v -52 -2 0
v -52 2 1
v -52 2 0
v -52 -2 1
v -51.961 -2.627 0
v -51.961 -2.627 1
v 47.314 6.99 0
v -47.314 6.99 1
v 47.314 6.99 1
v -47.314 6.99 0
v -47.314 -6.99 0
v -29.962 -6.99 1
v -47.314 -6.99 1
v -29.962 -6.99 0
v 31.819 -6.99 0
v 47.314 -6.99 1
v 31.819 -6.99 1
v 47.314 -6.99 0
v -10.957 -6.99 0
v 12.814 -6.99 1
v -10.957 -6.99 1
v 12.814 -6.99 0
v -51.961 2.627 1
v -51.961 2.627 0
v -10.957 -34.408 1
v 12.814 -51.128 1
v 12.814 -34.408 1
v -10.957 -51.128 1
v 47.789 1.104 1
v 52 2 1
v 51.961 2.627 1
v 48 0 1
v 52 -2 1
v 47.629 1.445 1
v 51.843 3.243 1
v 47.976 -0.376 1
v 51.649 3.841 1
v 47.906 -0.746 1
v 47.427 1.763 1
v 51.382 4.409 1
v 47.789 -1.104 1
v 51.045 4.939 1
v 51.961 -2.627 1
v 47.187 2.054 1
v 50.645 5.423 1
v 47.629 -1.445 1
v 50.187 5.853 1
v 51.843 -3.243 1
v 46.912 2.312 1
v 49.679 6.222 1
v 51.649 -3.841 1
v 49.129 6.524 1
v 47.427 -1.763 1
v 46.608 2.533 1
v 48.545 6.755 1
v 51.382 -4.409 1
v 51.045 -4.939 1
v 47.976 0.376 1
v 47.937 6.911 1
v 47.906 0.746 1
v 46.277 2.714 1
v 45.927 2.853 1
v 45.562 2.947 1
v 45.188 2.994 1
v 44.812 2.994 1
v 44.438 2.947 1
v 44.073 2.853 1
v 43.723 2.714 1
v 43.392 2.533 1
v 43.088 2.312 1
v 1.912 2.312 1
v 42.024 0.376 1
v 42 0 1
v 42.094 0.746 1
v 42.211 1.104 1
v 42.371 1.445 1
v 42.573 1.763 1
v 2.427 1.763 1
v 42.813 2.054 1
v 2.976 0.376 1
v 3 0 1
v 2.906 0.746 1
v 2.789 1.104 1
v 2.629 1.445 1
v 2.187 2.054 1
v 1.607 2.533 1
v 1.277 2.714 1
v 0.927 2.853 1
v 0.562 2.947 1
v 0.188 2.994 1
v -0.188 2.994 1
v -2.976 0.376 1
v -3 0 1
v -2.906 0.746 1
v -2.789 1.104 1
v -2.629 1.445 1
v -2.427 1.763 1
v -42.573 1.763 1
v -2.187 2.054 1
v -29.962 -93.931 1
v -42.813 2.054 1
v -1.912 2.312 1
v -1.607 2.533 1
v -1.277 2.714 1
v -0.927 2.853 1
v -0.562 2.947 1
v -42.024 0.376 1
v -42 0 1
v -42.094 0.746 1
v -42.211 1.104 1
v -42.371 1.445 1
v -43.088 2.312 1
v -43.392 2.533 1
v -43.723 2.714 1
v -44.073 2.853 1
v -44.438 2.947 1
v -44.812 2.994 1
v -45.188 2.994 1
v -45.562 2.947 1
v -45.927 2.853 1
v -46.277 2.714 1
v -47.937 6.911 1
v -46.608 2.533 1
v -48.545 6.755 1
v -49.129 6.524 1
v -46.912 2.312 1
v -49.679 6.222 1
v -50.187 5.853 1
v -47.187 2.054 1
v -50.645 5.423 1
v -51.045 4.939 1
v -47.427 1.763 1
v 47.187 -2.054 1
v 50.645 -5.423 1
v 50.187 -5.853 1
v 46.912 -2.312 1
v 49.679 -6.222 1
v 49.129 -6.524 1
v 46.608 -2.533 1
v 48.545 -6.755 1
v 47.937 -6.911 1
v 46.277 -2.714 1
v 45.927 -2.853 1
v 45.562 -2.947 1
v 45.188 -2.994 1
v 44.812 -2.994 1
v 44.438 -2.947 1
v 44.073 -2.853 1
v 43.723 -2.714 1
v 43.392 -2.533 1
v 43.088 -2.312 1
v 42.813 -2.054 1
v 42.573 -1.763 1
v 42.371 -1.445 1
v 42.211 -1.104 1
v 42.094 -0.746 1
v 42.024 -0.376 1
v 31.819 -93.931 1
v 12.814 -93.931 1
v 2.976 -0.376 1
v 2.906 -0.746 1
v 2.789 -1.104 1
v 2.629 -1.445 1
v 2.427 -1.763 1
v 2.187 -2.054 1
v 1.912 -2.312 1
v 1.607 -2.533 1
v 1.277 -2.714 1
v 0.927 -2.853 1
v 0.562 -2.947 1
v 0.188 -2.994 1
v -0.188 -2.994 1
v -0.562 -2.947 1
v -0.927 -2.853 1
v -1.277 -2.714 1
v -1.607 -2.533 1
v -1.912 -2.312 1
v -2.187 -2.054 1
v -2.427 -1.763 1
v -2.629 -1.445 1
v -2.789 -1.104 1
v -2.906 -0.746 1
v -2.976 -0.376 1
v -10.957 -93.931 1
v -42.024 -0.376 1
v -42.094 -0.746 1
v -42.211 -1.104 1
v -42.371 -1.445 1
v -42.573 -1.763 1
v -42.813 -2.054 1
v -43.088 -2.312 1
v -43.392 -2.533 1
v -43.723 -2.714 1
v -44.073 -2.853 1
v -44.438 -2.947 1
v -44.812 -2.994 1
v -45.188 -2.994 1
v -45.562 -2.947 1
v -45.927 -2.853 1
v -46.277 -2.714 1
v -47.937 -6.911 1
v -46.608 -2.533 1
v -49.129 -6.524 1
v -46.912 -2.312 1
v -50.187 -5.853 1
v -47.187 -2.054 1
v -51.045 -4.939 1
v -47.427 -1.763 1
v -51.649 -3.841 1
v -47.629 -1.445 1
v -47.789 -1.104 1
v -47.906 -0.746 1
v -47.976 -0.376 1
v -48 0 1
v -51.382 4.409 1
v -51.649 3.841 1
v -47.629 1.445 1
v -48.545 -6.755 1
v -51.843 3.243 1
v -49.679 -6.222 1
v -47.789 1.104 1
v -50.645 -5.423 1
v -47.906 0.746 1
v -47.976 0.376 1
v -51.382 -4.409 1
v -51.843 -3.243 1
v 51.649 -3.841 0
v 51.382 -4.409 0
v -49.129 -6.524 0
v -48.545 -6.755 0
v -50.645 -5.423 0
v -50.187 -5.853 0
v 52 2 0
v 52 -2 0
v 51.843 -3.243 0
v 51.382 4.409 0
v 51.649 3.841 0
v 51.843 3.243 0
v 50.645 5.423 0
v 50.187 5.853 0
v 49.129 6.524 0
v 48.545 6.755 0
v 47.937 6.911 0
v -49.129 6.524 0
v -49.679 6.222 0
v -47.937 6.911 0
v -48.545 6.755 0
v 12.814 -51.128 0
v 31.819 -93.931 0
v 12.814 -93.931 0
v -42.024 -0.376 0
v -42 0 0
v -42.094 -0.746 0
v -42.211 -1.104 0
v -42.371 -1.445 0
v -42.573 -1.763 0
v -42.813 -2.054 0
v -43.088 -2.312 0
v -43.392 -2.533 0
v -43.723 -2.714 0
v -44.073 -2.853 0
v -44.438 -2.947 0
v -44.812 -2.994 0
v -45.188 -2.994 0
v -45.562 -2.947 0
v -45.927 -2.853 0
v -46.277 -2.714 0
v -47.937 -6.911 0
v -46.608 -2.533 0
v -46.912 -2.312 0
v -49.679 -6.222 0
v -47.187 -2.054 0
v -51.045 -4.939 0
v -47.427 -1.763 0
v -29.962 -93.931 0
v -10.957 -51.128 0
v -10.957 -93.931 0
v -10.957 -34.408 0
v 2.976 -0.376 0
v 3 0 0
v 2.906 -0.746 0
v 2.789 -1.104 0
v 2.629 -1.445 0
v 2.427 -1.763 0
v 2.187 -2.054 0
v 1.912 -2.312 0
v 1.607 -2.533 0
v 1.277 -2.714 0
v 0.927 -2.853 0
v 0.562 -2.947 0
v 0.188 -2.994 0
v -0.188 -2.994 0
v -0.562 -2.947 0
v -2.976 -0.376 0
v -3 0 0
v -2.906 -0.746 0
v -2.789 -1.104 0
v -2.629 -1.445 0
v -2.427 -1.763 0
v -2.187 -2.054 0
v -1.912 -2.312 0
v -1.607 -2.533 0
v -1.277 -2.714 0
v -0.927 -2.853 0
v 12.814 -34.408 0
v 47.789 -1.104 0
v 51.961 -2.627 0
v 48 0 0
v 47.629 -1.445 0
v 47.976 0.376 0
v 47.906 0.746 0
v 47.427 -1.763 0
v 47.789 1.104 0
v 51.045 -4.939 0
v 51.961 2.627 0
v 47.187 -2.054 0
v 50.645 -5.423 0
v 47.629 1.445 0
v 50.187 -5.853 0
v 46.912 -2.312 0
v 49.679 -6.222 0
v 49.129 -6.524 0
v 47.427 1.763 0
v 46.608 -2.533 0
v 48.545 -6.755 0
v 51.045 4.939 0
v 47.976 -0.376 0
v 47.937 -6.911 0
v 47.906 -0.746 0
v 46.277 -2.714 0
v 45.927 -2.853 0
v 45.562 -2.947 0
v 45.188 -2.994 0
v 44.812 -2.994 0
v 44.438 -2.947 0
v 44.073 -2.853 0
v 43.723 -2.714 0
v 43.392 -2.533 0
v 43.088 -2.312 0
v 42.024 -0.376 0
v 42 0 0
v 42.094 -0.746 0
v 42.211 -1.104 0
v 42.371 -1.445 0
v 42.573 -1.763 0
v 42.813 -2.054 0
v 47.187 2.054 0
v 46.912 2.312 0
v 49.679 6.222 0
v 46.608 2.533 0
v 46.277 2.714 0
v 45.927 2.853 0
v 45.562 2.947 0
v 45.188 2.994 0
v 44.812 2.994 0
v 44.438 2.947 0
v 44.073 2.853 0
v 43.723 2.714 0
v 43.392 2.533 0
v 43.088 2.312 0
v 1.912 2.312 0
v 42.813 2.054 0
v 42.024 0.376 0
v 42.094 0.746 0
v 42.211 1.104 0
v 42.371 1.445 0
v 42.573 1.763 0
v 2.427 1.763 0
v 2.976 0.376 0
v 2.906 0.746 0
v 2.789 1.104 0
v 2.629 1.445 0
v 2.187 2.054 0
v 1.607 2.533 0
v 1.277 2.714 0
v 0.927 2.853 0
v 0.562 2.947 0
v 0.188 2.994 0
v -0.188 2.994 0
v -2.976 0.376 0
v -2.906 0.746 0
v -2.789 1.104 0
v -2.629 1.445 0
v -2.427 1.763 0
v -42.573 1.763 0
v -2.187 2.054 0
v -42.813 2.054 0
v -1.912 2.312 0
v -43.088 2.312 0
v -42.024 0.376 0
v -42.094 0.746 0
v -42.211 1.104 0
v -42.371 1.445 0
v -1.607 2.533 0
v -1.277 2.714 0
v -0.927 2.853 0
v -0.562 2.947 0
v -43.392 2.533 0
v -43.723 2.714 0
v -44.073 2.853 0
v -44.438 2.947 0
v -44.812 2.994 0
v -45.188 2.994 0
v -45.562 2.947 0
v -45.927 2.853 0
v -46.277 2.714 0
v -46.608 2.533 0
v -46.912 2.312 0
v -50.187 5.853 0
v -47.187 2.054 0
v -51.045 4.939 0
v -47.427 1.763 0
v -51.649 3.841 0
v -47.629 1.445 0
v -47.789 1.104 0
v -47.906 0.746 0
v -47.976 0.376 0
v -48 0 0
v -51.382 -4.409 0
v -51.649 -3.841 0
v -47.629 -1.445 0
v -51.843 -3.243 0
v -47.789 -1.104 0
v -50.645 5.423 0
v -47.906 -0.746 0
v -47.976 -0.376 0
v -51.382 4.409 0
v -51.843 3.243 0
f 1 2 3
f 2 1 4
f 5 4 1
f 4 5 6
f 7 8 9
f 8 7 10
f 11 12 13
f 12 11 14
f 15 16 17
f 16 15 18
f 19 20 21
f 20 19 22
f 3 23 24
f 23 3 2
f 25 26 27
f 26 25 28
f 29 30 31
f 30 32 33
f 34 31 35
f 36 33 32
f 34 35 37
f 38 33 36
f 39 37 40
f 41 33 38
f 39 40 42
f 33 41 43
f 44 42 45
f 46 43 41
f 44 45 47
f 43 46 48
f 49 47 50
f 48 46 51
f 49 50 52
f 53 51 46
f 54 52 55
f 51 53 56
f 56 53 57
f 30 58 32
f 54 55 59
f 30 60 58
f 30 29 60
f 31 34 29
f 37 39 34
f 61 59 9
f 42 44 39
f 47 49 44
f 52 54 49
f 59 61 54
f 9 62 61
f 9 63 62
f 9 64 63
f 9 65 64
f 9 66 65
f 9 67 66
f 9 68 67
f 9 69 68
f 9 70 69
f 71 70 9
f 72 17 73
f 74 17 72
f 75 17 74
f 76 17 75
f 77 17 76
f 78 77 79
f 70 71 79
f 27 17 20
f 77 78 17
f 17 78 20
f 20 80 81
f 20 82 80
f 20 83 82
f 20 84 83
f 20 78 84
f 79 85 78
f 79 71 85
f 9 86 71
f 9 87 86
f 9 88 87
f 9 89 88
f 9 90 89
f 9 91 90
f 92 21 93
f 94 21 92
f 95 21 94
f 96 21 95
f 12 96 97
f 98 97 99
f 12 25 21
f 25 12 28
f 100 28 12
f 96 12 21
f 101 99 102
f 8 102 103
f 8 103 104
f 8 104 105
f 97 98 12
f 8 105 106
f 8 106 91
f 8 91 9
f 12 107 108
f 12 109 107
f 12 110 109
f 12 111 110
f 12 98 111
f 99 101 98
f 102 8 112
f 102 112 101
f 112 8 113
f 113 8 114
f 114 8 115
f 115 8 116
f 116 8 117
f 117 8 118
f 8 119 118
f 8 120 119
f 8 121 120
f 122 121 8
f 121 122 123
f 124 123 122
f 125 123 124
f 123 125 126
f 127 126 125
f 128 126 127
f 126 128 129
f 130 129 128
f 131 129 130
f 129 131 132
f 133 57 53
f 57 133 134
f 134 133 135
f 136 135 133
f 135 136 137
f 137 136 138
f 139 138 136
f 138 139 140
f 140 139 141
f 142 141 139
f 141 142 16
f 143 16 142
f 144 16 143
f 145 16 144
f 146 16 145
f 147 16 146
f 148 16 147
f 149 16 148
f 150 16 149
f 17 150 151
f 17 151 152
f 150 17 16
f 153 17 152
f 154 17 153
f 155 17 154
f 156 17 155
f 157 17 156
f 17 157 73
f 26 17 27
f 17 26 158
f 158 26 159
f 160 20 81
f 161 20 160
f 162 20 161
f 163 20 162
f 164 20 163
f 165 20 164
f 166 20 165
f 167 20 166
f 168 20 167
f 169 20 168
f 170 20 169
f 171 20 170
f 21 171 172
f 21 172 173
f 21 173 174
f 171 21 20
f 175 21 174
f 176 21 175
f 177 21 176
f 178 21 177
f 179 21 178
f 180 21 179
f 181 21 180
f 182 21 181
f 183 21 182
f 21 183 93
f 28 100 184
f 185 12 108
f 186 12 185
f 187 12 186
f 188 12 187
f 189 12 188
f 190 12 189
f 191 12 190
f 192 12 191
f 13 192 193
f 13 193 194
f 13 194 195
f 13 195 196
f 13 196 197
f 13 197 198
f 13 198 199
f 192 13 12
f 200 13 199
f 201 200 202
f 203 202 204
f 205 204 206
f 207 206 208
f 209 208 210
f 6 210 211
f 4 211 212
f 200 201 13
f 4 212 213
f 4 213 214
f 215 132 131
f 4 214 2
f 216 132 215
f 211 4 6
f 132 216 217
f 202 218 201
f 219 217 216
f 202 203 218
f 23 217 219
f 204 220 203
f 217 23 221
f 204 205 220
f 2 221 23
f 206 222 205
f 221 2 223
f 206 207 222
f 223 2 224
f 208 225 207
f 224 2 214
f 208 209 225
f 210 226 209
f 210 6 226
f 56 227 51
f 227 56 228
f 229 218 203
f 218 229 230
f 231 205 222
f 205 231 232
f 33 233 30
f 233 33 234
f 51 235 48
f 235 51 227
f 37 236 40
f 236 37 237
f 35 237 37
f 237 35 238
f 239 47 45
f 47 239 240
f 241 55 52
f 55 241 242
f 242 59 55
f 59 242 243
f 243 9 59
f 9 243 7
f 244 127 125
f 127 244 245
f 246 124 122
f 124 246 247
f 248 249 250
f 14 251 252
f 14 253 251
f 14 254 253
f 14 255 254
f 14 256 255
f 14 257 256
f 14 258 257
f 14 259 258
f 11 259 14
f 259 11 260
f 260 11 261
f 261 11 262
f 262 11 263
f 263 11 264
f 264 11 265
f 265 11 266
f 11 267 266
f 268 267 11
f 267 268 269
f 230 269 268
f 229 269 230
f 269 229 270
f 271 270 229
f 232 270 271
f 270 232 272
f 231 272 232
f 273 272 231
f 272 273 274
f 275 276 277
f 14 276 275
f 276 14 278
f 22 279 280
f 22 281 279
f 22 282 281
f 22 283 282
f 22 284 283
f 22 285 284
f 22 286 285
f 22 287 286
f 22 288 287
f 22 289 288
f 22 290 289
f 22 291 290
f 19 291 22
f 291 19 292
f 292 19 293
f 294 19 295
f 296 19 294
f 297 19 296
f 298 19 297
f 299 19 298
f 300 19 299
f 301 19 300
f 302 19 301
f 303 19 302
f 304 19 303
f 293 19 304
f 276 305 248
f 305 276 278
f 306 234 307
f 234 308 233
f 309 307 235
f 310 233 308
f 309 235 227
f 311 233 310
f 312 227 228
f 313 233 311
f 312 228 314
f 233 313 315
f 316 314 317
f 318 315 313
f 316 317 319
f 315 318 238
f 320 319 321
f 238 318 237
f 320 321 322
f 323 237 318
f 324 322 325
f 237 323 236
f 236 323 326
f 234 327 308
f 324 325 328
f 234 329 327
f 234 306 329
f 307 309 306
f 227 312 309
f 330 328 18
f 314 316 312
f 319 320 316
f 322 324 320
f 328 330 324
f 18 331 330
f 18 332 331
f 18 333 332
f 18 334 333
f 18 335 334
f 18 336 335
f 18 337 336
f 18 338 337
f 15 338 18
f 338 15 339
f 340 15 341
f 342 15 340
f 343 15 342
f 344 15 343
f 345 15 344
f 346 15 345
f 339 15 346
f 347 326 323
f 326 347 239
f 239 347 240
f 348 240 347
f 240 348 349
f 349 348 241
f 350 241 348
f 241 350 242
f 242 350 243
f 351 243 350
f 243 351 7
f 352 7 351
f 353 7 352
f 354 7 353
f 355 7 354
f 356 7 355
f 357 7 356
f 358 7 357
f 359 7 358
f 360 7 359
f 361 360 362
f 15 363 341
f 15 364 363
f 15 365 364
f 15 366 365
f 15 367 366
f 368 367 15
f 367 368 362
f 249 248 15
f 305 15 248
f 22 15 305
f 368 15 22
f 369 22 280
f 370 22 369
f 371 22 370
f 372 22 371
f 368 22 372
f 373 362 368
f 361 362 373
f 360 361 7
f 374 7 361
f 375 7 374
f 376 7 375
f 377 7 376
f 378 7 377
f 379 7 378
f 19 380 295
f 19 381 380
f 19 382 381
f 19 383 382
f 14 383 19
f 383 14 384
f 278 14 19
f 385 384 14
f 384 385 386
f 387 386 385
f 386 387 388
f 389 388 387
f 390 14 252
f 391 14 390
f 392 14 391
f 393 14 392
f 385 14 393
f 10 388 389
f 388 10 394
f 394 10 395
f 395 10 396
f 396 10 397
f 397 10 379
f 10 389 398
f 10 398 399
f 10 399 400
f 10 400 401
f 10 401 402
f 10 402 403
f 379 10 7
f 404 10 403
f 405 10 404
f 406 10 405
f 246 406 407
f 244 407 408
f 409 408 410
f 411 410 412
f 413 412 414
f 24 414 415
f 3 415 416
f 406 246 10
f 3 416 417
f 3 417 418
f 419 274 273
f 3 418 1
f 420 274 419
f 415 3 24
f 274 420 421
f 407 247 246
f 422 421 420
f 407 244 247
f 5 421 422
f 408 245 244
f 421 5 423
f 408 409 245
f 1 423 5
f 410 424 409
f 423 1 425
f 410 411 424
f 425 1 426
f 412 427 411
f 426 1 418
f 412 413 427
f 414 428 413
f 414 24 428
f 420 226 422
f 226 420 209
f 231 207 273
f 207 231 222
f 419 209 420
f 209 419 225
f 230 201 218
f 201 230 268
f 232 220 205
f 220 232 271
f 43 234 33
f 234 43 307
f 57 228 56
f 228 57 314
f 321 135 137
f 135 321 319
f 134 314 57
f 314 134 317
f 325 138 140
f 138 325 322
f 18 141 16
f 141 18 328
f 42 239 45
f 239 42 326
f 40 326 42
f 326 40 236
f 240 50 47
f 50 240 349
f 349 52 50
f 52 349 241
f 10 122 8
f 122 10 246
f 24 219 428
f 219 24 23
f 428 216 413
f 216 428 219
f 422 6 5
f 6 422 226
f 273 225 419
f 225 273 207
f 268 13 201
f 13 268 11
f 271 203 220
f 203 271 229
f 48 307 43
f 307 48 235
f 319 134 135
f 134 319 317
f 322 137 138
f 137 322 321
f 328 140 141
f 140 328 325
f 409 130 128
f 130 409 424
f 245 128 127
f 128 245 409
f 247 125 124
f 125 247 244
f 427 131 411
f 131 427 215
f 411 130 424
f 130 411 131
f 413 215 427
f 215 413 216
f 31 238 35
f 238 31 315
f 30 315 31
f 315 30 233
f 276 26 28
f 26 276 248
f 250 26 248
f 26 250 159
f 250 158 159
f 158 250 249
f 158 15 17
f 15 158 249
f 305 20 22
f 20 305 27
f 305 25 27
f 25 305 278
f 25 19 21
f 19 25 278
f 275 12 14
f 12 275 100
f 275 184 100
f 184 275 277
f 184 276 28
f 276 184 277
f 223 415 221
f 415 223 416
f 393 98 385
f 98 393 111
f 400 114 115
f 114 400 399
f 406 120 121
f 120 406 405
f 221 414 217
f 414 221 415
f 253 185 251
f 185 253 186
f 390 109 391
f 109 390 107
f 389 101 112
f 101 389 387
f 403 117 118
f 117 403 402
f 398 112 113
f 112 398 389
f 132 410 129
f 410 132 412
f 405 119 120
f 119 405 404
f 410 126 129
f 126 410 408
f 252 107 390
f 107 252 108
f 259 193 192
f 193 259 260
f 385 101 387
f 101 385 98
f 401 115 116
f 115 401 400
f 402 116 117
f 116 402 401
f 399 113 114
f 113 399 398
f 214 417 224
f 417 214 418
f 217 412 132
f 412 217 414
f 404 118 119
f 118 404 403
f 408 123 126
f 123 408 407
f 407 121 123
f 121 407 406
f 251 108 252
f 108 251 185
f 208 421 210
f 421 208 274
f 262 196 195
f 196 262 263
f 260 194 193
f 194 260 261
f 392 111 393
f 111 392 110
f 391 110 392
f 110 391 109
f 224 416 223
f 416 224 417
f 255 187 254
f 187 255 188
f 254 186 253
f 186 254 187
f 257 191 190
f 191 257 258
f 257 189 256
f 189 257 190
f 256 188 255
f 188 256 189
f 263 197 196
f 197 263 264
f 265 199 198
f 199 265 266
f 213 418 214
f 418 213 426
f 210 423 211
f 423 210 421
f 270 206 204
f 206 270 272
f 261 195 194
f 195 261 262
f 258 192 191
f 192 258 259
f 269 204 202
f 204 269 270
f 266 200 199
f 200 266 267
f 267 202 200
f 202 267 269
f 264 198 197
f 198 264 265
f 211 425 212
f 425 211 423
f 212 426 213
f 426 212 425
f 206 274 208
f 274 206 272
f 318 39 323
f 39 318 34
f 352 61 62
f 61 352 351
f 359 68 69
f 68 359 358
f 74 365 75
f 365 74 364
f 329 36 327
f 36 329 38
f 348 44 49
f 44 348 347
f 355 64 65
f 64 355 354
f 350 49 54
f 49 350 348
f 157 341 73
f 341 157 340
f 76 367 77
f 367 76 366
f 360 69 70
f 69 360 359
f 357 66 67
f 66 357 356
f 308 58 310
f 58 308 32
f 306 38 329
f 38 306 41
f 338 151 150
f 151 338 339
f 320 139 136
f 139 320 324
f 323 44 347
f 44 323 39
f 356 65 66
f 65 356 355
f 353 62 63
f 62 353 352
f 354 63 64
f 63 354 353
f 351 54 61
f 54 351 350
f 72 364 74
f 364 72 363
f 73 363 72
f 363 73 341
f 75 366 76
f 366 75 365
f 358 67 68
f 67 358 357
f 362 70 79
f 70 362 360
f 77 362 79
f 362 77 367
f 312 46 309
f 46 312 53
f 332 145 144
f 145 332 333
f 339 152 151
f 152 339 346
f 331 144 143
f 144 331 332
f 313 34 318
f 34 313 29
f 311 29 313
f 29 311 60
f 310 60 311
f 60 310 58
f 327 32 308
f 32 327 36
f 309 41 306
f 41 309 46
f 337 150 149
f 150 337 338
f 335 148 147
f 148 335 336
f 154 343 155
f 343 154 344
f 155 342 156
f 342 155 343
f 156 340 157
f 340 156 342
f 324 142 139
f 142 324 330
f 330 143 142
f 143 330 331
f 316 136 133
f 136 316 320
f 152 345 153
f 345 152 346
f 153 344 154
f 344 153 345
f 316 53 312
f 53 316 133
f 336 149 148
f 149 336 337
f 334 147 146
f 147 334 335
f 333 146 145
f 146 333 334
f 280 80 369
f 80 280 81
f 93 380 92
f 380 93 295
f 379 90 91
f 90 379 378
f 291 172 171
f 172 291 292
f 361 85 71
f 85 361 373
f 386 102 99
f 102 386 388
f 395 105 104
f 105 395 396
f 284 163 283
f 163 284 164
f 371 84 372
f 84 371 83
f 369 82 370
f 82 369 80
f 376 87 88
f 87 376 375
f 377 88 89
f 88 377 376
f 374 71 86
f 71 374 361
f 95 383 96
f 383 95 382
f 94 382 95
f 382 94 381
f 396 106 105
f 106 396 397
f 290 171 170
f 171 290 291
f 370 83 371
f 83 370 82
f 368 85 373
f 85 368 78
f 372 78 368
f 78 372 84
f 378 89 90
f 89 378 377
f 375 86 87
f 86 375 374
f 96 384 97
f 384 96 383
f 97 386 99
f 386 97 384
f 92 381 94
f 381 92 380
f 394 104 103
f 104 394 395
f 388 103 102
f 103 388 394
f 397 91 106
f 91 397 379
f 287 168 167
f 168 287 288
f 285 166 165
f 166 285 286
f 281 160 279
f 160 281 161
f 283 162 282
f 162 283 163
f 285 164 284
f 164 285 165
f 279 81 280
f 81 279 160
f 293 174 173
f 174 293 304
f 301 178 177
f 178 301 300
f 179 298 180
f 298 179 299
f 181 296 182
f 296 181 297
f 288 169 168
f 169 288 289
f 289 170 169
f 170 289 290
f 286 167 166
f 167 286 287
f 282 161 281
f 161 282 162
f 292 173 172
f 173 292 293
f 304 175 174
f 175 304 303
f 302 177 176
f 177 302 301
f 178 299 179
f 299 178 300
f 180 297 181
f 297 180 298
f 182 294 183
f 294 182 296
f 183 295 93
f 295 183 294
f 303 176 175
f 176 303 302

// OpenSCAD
$fn = 50;


difference() {
	union() {
		translate(v = [0, 0, 0]) {
			rotate(a = [0, 0, 0]) {
				hull() {
					translate(v = [-47.0000000000, 2.0000000000, 0]) {
						rotate(a = [0, 0, 0]) {
							translate(v = [0, 0, 0]) {
								rotate(a = [0, 0, 0]) {
									cylinder(h = 1, r = 5);
								}
							}
						}
					}
					translate(v = [47.0000000000, 2.0000000000, 0]) {
						rotate(a = [0, 0, 0]) {
							translate(v = [0, 0, 0]) {
								rotate(a = [0, 0, 0]) {
									cylinder(h = 1, r = 5);
								}
							}
						}
					}
					translate(v = [-47.0000000000, -2.0000000000, 0]) {
						rotate(a = [0, 0, 0]) {
							translate(v = [0, 0, 0]) {
								rotate(a = [0, 0, 0]) {
									cylinder(h = 1, r = 5);
								}
							}
						}
					}
					translate(v = [47.0000000000, -2.0000000000, 0]) {
						rotate(a = [0, 0, 0]) {
							translate(v = [0, 0, 0]) {
								rotate(a = [0, 0, 0]) {
									cylinder(h = 1, r = 5);
								}
							}
						}
					}
				}
			}
		}
		translate(v = [0, 0, 0]) {
			rotate(a = [0, 0, 0]) {
				linear_extrude(height = 1) {
					text(font = "DejaVu Sans Mono:style=Bold", halign = "center", size = 95.0000000000, text = "H", valign = "top");
				}
			}
		}
	}
	union() {
		translate(v = [-45.0000000000, 0.0000000000, -125.0000000000]) {
			rotate(a = [0, 0, 0]) {
				cylinder(h = 250, r = 3.0000000000);
			}
		}
		translate(v = [45.0000000000, 0.0000000000, -125.0000000000]) {
			rotate(a = [0, 0, 0]) {
				cylinder(h = 250, r = 3.0000000000);
			}
		}
		translate(v = [45.0000000000, 0.0000000000, -125.0000000000]) {
			rotate(a = [0, 0, 0]) {
				cylinder(h = 250, r = 3.0000000000);
			}
		}
		translate(v = [0, 0, -125.0000000000]) {
			rotate(a = [0, 0, 0]) {
				cylinder(h = 250, r = 3.0000000000);
			}
		}
	}
}
